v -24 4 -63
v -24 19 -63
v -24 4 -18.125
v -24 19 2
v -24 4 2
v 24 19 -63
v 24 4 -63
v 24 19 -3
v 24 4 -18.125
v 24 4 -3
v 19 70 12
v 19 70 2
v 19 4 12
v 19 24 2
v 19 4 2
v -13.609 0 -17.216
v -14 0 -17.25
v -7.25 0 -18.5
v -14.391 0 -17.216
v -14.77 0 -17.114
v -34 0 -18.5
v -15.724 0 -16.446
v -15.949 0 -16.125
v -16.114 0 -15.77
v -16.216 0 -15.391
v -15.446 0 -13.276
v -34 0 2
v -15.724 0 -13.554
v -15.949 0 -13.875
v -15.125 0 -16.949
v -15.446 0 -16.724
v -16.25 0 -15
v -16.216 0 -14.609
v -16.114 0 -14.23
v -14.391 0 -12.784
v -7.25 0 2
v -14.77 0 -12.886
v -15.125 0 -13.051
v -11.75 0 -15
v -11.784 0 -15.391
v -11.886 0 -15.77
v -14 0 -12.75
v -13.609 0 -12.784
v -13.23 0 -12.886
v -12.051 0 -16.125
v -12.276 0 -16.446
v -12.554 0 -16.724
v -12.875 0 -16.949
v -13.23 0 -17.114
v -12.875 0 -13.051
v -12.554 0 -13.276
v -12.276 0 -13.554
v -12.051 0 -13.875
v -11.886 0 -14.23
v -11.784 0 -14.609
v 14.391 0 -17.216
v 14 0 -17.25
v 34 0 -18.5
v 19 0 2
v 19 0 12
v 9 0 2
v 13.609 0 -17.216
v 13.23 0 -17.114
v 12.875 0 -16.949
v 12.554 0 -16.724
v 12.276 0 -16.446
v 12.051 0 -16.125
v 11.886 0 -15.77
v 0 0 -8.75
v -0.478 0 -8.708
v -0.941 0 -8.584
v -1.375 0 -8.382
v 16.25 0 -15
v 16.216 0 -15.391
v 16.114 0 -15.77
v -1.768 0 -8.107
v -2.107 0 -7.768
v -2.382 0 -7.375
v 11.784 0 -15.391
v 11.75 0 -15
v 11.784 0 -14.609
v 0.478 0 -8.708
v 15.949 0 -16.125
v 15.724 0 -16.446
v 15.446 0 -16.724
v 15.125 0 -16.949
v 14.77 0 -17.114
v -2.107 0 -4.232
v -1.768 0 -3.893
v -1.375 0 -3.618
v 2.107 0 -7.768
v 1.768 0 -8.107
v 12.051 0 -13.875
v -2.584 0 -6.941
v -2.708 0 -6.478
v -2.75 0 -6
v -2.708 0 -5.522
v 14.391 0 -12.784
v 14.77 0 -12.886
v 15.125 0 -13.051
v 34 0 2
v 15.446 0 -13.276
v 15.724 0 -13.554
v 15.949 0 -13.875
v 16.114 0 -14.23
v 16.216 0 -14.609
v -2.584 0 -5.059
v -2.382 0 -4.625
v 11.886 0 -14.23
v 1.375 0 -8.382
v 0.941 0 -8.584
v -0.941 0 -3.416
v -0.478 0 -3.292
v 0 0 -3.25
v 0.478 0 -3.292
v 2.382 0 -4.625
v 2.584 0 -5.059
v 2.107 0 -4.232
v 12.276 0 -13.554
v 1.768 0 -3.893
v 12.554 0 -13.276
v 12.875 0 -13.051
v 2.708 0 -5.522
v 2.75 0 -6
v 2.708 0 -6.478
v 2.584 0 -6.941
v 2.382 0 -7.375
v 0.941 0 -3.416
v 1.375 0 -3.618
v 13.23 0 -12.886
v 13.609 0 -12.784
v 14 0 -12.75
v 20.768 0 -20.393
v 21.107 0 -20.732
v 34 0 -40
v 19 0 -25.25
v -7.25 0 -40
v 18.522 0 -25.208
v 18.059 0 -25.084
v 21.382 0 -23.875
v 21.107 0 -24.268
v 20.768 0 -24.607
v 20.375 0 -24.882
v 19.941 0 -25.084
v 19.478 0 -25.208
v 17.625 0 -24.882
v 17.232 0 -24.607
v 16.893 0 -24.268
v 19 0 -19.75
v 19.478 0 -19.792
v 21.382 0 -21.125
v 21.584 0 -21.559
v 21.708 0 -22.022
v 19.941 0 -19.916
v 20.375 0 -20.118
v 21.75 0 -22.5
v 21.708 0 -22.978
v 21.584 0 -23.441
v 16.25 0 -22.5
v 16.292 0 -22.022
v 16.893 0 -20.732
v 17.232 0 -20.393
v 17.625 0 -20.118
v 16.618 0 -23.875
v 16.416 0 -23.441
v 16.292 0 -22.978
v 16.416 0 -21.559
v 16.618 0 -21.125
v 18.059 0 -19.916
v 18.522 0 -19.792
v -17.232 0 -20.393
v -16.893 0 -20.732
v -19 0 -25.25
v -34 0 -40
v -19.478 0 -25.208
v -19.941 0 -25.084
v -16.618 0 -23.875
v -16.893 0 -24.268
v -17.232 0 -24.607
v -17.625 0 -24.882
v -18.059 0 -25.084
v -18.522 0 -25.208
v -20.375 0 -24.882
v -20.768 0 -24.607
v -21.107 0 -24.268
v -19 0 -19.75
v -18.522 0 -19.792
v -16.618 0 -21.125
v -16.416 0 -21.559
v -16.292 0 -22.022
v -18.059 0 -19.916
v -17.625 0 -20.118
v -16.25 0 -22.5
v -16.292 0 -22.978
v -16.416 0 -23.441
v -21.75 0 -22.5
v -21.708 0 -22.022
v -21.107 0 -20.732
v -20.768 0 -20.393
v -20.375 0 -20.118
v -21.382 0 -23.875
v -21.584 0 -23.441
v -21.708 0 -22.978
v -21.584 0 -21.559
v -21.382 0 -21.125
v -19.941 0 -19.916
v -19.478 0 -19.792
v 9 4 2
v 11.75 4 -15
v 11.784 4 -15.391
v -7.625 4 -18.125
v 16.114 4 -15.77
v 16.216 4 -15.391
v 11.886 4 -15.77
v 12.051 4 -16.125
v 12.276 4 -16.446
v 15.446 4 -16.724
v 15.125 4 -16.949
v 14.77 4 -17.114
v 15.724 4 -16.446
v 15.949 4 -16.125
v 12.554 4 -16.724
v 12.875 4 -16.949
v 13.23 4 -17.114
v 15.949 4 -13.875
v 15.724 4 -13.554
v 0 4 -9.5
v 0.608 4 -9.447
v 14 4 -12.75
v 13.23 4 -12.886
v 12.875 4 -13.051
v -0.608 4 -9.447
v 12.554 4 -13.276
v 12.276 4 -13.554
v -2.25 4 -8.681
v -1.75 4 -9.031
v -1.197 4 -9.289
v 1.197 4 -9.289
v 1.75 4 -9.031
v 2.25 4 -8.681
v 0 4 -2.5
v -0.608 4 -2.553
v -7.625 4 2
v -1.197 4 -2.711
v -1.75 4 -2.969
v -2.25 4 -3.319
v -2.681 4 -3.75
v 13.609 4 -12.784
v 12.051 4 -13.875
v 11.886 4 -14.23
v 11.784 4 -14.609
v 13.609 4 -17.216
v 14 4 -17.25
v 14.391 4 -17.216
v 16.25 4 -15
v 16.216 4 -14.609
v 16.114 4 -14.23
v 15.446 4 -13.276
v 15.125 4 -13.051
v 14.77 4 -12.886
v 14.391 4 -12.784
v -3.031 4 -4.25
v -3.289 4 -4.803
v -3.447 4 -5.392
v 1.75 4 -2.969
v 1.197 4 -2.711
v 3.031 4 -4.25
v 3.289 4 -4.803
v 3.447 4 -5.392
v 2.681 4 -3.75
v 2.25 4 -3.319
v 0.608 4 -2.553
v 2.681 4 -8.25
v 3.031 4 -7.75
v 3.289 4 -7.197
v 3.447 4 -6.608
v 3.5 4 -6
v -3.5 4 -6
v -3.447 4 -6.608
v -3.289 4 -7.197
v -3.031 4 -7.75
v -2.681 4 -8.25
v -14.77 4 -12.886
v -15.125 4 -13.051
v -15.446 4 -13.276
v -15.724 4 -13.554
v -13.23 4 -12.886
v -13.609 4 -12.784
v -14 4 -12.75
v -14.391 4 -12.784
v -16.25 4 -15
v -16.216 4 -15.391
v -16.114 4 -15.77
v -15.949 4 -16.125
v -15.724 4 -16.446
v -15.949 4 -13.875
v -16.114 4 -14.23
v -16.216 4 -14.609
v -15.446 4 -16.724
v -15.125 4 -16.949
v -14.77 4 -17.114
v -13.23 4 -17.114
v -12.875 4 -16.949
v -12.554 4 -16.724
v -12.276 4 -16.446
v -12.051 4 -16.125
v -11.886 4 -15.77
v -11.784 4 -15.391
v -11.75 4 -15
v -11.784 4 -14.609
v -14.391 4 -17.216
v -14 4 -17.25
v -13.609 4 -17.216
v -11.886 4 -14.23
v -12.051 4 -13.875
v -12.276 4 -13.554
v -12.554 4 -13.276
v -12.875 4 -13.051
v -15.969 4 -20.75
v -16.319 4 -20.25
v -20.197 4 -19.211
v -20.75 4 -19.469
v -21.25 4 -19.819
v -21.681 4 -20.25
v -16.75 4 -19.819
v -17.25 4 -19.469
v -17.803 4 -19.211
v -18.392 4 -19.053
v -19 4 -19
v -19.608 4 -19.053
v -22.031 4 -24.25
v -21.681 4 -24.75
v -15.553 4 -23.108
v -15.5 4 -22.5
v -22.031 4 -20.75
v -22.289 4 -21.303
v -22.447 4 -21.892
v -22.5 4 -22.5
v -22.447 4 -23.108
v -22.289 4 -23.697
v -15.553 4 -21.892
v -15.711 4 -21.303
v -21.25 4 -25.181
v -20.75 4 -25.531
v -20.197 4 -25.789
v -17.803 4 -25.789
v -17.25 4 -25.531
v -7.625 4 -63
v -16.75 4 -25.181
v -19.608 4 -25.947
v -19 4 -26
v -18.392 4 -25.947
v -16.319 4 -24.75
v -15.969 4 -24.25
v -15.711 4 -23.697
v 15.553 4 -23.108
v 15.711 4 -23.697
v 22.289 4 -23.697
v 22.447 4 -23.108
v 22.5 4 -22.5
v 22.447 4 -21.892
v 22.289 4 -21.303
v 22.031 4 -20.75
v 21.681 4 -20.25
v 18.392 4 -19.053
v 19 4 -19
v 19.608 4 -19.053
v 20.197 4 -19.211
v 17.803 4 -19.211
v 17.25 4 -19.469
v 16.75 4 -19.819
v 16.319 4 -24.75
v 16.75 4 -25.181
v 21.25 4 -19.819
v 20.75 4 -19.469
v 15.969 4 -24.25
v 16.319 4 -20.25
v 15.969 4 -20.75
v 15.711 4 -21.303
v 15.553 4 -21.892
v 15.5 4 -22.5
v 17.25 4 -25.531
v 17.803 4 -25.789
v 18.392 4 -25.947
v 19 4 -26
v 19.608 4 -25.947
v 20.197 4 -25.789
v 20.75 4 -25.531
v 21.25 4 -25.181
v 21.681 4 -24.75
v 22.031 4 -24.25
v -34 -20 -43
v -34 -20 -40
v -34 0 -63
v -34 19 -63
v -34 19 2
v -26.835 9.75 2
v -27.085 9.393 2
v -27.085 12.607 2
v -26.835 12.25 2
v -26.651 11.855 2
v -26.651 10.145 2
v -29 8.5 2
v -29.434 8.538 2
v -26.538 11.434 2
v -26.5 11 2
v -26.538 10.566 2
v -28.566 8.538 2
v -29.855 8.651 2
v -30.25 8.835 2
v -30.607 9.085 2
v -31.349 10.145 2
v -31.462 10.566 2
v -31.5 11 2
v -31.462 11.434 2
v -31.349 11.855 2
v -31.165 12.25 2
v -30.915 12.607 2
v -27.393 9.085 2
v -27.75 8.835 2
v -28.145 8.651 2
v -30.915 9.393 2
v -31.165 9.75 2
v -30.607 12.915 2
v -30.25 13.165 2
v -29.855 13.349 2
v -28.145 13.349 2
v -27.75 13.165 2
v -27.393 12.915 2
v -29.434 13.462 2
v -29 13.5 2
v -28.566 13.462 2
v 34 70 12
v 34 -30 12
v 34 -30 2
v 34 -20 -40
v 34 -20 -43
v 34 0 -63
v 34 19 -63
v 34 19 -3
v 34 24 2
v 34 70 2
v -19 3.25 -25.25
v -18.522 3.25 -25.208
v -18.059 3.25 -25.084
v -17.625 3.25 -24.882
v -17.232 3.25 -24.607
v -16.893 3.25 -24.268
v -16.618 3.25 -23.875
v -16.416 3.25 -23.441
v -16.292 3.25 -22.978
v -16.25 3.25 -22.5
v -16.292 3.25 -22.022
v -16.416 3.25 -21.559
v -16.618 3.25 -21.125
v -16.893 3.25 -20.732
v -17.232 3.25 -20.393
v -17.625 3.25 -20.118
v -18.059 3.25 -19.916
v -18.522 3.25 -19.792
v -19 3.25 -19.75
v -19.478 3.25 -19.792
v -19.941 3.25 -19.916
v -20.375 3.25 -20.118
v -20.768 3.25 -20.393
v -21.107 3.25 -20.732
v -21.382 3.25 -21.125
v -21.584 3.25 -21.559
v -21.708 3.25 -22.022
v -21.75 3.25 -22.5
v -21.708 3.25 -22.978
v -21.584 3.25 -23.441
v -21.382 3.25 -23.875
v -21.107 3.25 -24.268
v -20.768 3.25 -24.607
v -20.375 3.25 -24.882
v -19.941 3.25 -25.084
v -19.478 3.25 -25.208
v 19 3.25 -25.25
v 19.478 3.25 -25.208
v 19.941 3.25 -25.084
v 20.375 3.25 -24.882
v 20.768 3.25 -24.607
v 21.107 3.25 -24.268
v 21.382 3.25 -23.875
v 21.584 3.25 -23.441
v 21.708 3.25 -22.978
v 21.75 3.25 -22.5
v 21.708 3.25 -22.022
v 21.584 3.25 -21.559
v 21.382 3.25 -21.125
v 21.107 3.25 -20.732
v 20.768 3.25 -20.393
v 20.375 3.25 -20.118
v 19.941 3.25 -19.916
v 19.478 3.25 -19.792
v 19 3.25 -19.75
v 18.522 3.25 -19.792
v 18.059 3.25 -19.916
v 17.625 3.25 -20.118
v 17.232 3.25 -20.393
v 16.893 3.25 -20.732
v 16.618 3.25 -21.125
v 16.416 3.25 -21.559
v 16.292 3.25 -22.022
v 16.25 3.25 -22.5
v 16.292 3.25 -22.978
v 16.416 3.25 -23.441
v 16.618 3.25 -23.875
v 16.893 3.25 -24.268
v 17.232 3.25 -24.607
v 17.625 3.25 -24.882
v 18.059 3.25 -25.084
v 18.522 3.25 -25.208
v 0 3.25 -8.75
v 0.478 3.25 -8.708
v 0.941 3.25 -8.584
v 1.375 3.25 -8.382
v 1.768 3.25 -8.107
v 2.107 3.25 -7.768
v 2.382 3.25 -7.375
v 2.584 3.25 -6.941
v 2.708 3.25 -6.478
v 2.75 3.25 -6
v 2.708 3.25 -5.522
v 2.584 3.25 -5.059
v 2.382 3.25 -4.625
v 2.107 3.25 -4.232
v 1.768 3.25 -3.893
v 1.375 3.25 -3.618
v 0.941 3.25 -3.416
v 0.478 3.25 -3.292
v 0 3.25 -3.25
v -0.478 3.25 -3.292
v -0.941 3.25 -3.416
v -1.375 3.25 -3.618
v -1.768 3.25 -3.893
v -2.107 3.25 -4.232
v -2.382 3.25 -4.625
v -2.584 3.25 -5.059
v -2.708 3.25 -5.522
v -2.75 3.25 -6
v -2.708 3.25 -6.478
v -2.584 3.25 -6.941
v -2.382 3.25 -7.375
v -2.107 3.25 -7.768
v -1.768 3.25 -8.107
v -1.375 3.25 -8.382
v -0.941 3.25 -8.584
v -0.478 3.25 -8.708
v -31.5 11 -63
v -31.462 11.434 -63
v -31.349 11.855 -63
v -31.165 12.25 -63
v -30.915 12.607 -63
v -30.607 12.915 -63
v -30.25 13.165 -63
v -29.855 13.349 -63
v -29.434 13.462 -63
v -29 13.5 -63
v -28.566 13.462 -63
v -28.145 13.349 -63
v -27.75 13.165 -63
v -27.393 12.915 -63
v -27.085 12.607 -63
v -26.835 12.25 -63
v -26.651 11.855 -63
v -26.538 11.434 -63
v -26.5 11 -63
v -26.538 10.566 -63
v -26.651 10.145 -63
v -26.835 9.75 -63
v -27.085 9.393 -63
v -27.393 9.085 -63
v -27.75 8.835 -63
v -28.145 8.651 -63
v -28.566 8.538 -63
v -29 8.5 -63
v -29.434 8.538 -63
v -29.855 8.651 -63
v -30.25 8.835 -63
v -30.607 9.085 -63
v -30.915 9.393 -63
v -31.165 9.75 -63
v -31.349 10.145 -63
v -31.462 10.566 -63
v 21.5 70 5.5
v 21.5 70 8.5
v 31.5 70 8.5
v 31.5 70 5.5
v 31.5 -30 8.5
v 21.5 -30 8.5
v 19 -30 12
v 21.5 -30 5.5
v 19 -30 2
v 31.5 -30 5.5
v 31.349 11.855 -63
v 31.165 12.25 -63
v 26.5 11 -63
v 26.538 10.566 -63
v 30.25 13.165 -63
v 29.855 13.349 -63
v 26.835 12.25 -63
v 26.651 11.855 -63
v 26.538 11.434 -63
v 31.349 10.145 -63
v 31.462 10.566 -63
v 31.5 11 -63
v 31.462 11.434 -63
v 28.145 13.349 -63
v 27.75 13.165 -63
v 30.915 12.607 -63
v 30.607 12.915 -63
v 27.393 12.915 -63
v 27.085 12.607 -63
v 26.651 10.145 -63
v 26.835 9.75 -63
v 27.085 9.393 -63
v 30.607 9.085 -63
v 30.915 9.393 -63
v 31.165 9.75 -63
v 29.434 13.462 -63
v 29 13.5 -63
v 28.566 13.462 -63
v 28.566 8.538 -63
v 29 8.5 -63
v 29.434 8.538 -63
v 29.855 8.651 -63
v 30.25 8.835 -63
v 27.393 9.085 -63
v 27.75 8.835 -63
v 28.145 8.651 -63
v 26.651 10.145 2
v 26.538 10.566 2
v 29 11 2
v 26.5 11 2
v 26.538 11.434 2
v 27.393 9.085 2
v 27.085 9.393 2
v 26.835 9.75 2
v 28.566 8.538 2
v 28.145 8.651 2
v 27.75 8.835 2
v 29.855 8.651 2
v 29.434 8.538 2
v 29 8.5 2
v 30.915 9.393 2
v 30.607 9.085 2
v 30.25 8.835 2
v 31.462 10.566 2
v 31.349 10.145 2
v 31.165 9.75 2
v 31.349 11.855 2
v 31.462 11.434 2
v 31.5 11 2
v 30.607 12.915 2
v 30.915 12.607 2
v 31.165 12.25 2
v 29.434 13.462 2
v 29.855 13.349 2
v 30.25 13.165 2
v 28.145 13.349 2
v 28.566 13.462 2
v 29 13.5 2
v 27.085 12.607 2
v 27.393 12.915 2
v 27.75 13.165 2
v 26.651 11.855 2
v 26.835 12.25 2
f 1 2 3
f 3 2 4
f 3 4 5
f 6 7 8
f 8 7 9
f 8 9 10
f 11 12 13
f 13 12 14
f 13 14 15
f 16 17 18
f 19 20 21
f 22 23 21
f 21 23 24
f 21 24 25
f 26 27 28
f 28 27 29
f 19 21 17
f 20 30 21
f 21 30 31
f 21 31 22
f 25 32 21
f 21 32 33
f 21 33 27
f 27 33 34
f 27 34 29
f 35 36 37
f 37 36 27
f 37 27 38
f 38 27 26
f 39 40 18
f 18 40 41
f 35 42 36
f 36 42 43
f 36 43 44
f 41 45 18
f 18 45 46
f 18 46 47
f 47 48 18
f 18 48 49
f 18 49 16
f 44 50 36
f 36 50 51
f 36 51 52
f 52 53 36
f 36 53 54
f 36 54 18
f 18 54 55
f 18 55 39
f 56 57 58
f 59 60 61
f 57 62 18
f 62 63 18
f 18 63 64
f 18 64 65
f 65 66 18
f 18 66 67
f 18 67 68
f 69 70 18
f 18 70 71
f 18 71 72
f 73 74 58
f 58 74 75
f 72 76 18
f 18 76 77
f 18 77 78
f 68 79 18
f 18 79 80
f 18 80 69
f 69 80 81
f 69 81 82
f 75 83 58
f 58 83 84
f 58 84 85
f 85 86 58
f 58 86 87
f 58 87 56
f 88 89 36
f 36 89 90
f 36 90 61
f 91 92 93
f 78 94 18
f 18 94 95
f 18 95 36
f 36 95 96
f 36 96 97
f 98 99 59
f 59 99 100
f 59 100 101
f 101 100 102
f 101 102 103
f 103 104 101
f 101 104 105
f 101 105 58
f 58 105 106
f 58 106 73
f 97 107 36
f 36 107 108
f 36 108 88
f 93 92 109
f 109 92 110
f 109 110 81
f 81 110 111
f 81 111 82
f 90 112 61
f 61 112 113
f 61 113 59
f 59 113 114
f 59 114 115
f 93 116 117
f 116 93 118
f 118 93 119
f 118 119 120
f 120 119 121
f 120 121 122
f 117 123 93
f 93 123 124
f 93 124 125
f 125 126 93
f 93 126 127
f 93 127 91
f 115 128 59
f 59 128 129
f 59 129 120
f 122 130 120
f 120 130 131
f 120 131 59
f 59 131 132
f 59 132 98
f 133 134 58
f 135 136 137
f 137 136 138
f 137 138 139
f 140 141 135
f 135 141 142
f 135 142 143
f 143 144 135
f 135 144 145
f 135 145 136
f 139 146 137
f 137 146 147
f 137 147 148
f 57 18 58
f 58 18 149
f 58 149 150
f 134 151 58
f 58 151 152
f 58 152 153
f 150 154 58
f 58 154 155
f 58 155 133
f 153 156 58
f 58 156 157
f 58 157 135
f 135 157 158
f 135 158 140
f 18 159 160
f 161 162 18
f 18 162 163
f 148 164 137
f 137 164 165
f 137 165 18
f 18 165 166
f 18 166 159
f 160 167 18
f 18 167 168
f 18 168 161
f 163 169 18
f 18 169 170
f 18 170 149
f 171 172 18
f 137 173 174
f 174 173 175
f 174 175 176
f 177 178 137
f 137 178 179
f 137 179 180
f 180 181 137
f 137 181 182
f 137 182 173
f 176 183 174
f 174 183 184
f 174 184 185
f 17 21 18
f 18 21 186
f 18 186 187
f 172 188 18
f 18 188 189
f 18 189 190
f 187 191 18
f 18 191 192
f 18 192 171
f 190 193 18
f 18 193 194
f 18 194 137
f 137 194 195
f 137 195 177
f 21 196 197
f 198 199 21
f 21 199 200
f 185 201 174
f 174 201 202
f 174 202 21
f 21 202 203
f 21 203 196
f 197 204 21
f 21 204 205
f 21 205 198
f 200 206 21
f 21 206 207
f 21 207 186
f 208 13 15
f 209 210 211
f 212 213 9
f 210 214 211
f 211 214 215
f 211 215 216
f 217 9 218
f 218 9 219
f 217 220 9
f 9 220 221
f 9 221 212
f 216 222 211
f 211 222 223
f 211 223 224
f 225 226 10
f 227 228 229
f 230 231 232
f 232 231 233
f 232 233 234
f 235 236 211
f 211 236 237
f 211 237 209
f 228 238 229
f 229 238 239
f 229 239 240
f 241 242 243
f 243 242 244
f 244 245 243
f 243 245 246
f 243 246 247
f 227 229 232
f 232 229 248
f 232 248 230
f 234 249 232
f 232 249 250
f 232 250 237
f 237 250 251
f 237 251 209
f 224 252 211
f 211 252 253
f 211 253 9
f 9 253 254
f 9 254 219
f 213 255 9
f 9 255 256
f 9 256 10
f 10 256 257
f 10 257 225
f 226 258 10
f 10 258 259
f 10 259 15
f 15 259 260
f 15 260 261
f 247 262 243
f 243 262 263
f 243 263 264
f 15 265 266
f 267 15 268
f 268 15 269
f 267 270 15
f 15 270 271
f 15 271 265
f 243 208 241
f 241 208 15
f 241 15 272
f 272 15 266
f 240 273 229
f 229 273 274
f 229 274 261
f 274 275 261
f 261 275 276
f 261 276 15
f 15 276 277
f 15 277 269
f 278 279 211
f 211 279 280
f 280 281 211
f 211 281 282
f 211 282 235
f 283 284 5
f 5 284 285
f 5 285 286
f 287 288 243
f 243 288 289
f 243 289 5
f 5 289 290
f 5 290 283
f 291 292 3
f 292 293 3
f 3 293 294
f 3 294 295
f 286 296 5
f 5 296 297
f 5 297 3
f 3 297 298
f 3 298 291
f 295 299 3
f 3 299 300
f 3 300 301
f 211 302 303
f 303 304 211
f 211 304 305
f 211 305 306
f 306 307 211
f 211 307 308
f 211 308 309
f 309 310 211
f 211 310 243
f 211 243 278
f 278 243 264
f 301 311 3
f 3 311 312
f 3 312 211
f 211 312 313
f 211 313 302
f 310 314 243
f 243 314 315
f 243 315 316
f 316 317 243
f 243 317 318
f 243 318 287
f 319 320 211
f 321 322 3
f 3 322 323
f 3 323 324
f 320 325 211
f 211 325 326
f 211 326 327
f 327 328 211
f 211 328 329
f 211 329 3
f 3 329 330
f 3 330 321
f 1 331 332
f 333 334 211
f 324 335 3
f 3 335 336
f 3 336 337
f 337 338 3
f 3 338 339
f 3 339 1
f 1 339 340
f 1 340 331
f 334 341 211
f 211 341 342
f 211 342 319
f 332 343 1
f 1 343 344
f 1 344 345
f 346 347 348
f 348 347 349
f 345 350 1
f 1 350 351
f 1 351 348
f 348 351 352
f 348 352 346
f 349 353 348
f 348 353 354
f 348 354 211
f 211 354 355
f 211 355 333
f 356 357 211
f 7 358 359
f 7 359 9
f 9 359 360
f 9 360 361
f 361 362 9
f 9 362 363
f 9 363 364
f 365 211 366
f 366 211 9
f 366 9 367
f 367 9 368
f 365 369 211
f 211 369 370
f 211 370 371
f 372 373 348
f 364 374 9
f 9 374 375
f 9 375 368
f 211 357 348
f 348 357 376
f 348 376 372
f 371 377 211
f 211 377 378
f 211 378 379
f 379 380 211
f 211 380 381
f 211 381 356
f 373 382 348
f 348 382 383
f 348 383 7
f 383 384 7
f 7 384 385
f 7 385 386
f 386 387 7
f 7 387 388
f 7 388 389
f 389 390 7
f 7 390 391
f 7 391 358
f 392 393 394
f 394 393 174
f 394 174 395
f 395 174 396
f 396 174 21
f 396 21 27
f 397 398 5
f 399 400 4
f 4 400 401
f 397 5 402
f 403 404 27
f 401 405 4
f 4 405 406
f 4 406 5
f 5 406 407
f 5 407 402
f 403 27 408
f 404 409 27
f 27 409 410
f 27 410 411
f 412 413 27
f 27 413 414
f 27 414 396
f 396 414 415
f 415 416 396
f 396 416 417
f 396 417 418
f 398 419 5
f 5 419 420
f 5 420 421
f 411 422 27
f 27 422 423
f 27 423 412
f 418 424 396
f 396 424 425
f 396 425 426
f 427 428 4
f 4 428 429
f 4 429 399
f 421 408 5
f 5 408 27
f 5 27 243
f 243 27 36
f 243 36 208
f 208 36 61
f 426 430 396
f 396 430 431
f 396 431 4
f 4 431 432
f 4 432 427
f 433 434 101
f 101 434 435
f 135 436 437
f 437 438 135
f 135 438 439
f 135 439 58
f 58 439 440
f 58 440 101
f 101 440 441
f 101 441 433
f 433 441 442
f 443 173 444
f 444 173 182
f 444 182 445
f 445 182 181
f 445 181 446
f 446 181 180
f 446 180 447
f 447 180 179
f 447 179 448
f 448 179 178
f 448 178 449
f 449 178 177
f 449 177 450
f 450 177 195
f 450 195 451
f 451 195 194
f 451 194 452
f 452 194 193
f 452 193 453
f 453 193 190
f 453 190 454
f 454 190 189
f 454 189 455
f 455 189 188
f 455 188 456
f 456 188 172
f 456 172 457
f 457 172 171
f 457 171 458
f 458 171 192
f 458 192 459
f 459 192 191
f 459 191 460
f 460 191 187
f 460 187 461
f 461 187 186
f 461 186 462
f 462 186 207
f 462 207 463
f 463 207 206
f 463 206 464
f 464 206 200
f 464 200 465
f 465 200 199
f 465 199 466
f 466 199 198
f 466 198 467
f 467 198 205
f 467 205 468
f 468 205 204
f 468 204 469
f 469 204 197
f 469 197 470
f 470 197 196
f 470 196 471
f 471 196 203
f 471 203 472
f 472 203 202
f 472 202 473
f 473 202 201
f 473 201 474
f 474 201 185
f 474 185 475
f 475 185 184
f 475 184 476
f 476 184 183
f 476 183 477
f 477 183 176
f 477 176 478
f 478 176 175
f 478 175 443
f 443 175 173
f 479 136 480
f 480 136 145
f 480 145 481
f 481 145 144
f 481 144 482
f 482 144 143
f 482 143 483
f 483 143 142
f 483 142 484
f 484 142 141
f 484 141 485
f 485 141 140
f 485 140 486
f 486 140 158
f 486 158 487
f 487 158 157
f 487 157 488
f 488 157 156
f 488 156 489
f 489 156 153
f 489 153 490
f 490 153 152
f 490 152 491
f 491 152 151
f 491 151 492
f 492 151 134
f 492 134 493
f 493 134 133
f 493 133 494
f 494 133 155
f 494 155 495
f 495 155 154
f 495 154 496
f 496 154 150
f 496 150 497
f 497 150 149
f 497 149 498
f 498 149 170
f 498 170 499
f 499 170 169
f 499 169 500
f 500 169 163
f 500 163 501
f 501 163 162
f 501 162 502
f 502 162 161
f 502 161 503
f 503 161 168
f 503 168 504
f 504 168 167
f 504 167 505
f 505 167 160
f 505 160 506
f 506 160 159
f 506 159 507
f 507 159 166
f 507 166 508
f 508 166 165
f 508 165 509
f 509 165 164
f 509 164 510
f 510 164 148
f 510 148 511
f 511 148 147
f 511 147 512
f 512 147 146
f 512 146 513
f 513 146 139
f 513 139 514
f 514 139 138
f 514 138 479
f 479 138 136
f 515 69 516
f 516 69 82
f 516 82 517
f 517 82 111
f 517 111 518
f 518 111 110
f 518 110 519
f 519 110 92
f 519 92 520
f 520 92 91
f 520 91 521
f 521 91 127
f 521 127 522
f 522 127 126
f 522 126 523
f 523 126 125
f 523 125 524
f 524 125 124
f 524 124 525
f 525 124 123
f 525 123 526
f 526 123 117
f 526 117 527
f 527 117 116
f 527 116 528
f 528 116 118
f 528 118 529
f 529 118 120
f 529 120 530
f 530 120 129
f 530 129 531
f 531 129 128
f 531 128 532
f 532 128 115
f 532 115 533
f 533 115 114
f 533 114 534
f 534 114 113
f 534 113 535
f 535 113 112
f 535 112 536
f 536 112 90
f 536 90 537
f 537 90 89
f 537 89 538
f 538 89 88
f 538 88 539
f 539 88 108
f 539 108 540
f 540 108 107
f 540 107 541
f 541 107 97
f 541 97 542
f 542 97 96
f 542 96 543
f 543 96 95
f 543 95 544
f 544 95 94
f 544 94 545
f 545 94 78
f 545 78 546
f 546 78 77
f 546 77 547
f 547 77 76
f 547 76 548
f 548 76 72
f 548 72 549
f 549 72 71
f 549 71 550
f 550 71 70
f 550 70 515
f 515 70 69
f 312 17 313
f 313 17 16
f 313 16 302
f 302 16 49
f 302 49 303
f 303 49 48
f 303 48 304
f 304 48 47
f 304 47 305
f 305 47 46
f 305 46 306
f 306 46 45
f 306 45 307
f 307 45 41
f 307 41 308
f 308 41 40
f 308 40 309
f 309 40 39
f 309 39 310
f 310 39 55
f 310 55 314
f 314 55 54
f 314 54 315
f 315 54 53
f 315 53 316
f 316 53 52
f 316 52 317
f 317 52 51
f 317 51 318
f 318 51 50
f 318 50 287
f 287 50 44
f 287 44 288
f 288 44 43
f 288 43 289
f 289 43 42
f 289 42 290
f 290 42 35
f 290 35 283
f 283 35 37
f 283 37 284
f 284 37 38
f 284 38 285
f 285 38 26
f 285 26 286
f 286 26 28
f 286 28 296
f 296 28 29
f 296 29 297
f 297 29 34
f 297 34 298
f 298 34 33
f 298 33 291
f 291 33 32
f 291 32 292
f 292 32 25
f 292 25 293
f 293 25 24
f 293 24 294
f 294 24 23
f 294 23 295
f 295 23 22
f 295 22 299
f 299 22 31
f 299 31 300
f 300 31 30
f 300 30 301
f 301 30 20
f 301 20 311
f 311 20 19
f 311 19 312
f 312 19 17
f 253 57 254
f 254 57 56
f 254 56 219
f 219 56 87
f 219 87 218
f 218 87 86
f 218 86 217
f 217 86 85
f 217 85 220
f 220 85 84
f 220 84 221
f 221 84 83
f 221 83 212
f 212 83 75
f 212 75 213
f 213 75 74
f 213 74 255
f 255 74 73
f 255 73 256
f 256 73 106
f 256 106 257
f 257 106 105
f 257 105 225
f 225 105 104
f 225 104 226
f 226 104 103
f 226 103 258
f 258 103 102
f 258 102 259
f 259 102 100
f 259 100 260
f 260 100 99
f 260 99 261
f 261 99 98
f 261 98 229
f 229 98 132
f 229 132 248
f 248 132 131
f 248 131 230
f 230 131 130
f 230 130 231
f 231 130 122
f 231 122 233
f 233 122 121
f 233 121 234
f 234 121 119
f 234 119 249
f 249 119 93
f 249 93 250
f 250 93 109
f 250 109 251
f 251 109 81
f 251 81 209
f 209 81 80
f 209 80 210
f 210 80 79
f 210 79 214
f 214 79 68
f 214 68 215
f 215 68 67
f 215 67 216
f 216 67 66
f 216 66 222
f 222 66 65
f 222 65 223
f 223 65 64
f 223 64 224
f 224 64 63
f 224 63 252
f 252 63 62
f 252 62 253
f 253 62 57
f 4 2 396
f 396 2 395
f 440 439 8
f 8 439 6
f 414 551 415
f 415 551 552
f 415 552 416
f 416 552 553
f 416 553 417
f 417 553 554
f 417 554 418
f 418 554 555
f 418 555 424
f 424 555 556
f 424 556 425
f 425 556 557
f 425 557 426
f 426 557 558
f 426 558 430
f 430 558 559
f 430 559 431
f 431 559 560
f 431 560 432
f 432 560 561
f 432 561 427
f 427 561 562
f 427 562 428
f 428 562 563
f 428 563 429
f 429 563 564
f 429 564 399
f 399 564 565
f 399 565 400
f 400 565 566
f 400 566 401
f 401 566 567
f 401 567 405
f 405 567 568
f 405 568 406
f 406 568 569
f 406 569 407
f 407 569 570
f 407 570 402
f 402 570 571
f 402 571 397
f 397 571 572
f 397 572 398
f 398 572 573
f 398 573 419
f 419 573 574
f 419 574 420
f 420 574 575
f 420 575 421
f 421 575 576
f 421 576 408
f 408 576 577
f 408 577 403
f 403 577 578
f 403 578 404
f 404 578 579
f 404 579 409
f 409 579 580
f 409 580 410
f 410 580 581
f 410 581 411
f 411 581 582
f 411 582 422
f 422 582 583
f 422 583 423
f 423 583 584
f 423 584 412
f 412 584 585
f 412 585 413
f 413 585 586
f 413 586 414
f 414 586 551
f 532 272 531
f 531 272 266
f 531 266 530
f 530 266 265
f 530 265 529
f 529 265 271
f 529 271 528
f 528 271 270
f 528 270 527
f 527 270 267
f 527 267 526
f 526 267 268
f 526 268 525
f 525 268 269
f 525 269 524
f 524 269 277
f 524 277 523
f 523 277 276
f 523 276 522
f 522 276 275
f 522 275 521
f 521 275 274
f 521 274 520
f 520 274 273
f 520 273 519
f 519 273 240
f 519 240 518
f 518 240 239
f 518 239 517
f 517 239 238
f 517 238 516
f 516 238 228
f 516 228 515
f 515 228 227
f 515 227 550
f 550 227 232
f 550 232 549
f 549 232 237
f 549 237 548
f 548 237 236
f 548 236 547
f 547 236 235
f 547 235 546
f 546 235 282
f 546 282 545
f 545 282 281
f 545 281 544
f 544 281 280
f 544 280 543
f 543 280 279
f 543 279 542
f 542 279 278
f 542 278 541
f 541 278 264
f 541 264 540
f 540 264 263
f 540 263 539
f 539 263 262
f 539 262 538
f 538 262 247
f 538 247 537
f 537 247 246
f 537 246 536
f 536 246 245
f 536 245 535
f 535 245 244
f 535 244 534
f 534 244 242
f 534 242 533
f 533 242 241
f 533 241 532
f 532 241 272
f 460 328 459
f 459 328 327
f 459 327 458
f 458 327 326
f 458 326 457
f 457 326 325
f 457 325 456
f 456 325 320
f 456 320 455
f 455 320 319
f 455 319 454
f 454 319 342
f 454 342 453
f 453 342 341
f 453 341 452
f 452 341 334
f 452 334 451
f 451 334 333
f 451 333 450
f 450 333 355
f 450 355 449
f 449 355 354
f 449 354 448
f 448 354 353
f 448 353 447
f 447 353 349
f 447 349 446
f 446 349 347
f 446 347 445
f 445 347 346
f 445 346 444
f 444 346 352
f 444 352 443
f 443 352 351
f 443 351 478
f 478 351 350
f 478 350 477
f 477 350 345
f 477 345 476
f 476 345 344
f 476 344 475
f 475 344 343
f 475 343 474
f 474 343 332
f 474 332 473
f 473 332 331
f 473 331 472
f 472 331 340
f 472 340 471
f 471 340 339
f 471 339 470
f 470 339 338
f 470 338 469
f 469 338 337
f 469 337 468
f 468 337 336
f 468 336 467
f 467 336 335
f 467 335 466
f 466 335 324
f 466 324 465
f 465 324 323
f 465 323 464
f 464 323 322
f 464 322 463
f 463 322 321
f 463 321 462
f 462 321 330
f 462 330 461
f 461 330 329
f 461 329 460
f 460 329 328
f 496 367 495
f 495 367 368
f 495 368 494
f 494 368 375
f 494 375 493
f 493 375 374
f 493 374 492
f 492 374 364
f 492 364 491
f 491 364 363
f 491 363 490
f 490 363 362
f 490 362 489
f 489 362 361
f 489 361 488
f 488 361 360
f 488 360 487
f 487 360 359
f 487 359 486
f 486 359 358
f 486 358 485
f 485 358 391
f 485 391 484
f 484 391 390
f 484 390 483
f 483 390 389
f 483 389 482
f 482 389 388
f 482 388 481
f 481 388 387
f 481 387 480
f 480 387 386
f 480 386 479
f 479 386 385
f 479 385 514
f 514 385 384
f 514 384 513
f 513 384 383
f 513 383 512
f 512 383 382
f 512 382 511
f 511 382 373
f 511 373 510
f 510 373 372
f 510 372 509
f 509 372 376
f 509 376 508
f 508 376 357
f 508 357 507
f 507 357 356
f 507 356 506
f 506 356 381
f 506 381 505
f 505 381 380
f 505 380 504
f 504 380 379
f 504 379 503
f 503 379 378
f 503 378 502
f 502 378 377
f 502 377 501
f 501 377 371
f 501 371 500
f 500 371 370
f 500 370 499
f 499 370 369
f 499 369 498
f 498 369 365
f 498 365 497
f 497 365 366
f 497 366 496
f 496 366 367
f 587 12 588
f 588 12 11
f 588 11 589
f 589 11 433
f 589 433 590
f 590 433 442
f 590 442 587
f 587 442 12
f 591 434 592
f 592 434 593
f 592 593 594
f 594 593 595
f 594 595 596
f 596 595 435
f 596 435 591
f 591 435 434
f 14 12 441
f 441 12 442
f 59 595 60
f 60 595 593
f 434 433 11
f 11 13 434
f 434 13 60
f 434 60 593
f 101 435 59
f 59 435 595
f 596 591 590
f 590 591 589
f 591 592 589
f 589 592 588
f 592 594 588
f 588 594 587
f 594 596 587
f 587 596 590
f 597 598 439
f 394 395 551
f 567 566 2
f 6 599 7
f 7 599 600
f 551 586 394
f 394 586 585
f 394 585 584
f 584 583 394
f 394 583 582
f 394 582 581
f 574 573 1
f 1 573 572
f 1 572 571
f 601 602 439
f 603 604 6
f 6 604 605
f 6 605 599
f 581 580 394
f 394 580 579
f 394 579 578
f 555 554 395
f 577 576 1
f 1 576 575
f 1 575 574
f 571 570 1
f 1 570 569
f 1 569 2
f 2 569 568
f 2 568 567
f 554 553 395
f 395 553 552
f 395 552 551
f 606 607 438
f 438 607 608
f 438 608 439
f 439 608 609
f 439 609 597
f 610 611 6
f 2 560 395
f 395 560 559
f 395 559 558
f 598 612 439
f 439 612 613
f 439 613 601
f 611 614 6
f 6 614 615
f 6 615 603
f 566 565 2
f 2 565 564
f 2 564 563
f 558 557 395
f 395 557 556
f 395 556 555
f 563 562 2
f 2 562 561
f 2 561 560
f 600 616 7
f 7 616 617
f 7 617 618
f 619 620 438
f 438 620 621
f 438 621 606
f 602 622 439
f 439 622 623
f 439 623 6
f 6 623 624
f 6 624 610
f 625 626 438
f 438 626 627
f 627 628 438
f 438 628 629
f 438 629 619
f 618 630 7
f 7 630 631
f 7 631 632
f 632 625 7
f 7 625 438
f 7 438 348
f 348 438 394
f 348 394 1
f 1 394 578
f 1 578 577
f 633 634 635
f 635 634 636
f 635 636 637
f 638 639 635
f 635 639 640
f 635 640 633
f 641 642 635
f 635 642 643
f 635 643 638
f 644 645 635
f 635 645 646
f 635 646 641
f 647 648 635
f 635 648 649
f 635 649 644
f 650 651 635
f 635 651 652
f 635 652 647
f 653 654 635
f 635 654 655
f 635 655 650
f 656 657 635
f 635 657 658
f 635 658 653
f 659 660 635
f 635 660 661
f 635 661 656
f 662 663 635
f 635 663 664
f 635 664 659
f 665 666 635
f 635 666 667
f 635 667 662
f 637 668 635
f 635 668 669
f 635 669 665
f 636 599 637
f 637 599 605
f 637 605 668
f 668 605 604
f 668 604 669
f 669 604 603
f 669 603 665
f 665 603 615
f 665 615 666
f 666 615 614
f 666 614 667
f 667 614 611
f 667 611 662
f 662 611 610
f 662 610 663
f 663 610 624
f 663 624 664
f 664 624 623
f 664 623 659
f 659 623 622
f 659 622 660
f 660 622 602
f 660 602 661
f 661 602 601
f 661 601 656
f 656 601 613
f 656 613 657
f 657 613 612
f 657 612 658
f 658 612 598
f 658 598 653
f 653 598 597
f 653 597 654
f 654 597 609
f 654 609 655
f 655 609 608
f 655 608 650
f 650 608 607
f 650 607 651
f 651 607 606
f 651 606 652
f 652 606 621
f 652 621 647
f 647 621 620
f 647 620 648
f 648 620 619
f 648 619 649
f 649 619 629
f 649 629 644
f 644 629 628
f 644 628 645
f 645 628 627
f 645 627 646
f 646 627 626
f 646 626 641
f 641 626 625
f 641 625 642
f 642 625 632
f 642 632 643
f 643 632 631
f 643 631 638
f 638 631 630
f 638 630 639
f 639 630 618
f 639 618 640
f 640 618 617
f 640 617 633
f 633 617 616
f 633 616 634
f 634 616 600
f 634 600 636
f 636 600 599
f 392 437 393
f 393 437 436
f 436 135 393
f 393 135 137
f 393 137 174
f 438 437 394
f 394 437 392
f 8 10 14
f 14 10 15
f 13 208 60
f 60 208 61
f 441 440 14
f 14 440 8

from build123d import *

# Parameters (mm, degrees)
SKETCH1_R                = 2.75
SKETCH1_R_2              = 2.25
BOSS_EXTRUDE1_DEPTH      = 4
SKETCH3_W                = 10
SKETCH3_H                = 42
BOSS_EXTRUDE3_DEPTH      = 15
SKETCH4_R                = 2.5
CUT_EXTRUDE1_DEPTH       = 58.280013966
CHAMFER1_SIZE            = 0.75
BOSS_EXTRUDE5_DEPTH      = 30
BOSS_EXTRUDE5_DEPTH_BACK = 70
SKETCH8_W                = 15
SKETCH8_H                = 10
SKETCH10_W               = 10
SKETCH10_H               = 3
CUT_EXTRUDE4_DEPTH       = 113.942463228
BOSS_EXTRUDE6_START      = 23
SKETCH11_W               = 10
SKETCH11_H               = 19
SKETCH11_R               = 2.5
BOSS_EXTRUDE6_DEPTH      = 23
BOSS_EXTRUDE7_DEPTH      = 3
BOSS_EXTRUDE8_DEPTH      = 10
BOSS_EXTRUDE9_DEPTH      = 10
CHAMFER2_SIZE            = 5
CHAMFER3_SIZE            = 10
CHAMFER4_SIZE            = 5
BOSS_EXTRUDE10_REACH     = 112.603


with BuildPart() as part:
    # Sketch1 → Boss-Extrude1 (new body)
    with BuildSketch(Plane(origin=(0, 0, 0), x_dir=(1, 0, 0), z_dir=(0, 1, 0))):
        Polygon((-34, 0), (-34, 40), (34, 40), (34, 0), (34, -2), (-34, -2), align=None)
        with Locations(Location((-19, 22.5, 0), (0, 0, 270))):
            Circle(SKETCH1_R, mode=Mode.SUBTRACT)
        with Locations(Location((19, 22.5, 0), (0, 0, 270))):
            Circle(SKETCH1_R, mode=Mode.SUBTRACT)
        with Locations(Location((-14, 15, 0), (0, 0, 270))):
            Circle(SKETCH1_R_2, mode=Mode.SUBTRACT)
        with Locations(Location((14, 15, 0), (0, 0, 270))):
            Circle(SKETCH1_R_2, mode=Mode.SUBTRACT)
        with Locations(Location((0, 6, 0), (0, 0, 270))):
            Circle(SKETCH1_R, mode=Mode.SUBTRACT)
    extrude(amount=BOSS_EXTRUDE1_DEPTH)

    # Sketch3 → Boss-Extrude3 (add)
    with BuildSketch(Plane(origin=(0, 4, 0), x_dir=(1, 0, 0), z_dir=(0, 1, 0))):
        with Locations((-29, 19)):
            Rectangle(SKETCH3_W, SKETCH3_H)
        with Locations((29, 19)):
            Rectangle(SKETCH3_W, SKETCH3_H)
    extrude(amount=BOSS_EXTRUDE3_DEPTH)

    # Sketch4 → Cut-Extrude1 (cut, through all)
    with BuildSketch(Plane(origin=(0, 0, -40), x_dir=(-1, 0, 0), z_dir=(0, 0, -1))):
        with Locations((-29, 11)):
            Circle(SKETCH4_R)
        with Locations((29, 11)):
            Circle(SKETCH4_R)
    extrude(amount=-CUT_EXTRUDE1_DEPTH, mode=Mode.SUBTRACT)

    # Chamfer1
    chamfer1_edges = [part.edges().sort_by_distance(p)[0] for p in [
        (-19, 4, -25.25),
        (19, 4, -25.25),
        (0, 4, -8.75),
    ]]
    chamfer(chamfer1_edges, length=CHAMFER1_SIZE)

    # Sketch8 → Boss-Extrude5 (add, two sides: drawn at the far end of the back side and taken through both)
    with BuildSketch(Plane.XZ.offset(-BOSS_EXTRUDE5_DEPTH_BACK)):
        with Locations((26.5, 7)):
            Rectangle(SKETCH8_W, SKETCH8_H)
    extrude(amount=BOSS_EXTRUDE5_DEPTH + BOSS_EXTRUDE5_DEPTH_BACK)

    # Sketch10 → Cut-Extrude4 (cut, through all)
    with BuildSketch(Plane(origin=(0, 70, 0), x_dir=(1, 0, 0), z_dir=(0, 1, 0))):
        with Locations((26.5, -7)):
            Rectangle(SKETCH10_W, SKETCH10_H)
    extrude(amount=-CUT_EXTRUDE4_DEPTH, mode=Mode.SUBTRACT)

    # Sketch11 → Boss-Extrude6 (add)
    # profile 1 of 2: a face of its own
    with BuildSketch(Plane(origin=(0, 0, -40), x_dir=(-1, 0, 0), z_dir=(0, 0, -1)).offset(BOSS_EXTRUDE6_START)):
        with Locations((-29, 9.5)):
            Rectangle(SKETCH11_W, SKETCH11_H)
        with Locations((-29, 11)):
            Circle(SKETCH11_R, mode=Mode.SUBTRACT)
    # profile 2 of 2: a face of its own
    with BuildSketch(Plane(origin=(0, 0, -40), x_dir=(-1, 0, 0), z_dir=(0, 0, -1)).offset(BOSS_EXTRUDE6_START)):
        with Locations((29, 9.5)):
            Rectangle(SKETCH11_W, SKETCH11_H)
        with Locations((29, 11)):
            Circle(SKETCH11_R, mode=Mode.SUBTRACT)
    extrude(amount=-BOSS_EXTRUDE6_DEPTH)

    # Sketch12 → Boss-Extrude7 (add)
    with BuildSketch(Plane(origin=(0, 0, -40), x_dir=(-1, 0, 0), z_dir=(0, 0, -1))):
        Polygon((-24, 0), (-24, 4), (24, 4), (24, 0), (34, 0), (34, -20), (-34, -20), (-34, 0), align=None)
    extrude(amount=BOSS_EXTRUDE7_DEPTH)

    # Sketch13 → Boss-Extrude8 (add)
    with BuildSketch(Plane.ZY.offset(34)):
        Polygon((-63, 0), (-43, -20), (-43, 0), align=None)
    extrude(amount=-BOSS_EXTRUDE8_DEPTH)

    # Sketch14 → Boss-Extrude9 (add)
    with BuildSketch(Plane(origin=(34, 0, 0), x_dir=(0, 0, -1), z_dir=(1, 0, 0))):
        Polygon((43, 0), (43, -20), (63, 0), align=None)
    extrude(amount=-BOSS_EXTRUDE9_DEPTH)

    # Chamfer2
    chamfer2_edges = [part.edges().sort_by_distance(p)[0] for p in [
        (24, 11.5, 2),
    ]]
    chamfer(chamfer2_edges, length=CHAMFER2_SIZE - 0.0001)  # a hair under: the kernel refuses the full size

    # Chamfer3
    chamfer3_edges = [part.edges().sort_by_distance(p)[0] for p in [
        (19, 2, 2),
    ]]
    chamfer(chamfer3_edges, length=CHAMFER3_SIZE - 0.0001)  # a hair under: the kernel refuses the full size

    # Chamfer4
    chamfer4_edges = [part.edges().sort_by_distance(p)[0] for p in [
        (26.50005, 19, 2),
    ]]
    chamfer(chamfer4_edges, length=CHAMFER4_SIZE)

    # Sketch15 → Boss-Extrude10 (add, up to next)
    with BuildSketch(Plane.ZY.offset(-24), mode=Mode.PRIVATE) as boss_extrude10_sk1:
        Polygon((-43, -20), (-43, 4), (-63, 4), (-63, 0), align=None)
    boss_extrude10_tool1 = extrude(boss_extrude10_sk1.sketch, amount=BOSS_EXTRUDE10_REACH, mode=Mode.PRIVATE) - part.part
    add(boss_extrude10_tool1.solids().sort_by_distance((24, -4.190476, -50.619048))[0])


solid = part.part
